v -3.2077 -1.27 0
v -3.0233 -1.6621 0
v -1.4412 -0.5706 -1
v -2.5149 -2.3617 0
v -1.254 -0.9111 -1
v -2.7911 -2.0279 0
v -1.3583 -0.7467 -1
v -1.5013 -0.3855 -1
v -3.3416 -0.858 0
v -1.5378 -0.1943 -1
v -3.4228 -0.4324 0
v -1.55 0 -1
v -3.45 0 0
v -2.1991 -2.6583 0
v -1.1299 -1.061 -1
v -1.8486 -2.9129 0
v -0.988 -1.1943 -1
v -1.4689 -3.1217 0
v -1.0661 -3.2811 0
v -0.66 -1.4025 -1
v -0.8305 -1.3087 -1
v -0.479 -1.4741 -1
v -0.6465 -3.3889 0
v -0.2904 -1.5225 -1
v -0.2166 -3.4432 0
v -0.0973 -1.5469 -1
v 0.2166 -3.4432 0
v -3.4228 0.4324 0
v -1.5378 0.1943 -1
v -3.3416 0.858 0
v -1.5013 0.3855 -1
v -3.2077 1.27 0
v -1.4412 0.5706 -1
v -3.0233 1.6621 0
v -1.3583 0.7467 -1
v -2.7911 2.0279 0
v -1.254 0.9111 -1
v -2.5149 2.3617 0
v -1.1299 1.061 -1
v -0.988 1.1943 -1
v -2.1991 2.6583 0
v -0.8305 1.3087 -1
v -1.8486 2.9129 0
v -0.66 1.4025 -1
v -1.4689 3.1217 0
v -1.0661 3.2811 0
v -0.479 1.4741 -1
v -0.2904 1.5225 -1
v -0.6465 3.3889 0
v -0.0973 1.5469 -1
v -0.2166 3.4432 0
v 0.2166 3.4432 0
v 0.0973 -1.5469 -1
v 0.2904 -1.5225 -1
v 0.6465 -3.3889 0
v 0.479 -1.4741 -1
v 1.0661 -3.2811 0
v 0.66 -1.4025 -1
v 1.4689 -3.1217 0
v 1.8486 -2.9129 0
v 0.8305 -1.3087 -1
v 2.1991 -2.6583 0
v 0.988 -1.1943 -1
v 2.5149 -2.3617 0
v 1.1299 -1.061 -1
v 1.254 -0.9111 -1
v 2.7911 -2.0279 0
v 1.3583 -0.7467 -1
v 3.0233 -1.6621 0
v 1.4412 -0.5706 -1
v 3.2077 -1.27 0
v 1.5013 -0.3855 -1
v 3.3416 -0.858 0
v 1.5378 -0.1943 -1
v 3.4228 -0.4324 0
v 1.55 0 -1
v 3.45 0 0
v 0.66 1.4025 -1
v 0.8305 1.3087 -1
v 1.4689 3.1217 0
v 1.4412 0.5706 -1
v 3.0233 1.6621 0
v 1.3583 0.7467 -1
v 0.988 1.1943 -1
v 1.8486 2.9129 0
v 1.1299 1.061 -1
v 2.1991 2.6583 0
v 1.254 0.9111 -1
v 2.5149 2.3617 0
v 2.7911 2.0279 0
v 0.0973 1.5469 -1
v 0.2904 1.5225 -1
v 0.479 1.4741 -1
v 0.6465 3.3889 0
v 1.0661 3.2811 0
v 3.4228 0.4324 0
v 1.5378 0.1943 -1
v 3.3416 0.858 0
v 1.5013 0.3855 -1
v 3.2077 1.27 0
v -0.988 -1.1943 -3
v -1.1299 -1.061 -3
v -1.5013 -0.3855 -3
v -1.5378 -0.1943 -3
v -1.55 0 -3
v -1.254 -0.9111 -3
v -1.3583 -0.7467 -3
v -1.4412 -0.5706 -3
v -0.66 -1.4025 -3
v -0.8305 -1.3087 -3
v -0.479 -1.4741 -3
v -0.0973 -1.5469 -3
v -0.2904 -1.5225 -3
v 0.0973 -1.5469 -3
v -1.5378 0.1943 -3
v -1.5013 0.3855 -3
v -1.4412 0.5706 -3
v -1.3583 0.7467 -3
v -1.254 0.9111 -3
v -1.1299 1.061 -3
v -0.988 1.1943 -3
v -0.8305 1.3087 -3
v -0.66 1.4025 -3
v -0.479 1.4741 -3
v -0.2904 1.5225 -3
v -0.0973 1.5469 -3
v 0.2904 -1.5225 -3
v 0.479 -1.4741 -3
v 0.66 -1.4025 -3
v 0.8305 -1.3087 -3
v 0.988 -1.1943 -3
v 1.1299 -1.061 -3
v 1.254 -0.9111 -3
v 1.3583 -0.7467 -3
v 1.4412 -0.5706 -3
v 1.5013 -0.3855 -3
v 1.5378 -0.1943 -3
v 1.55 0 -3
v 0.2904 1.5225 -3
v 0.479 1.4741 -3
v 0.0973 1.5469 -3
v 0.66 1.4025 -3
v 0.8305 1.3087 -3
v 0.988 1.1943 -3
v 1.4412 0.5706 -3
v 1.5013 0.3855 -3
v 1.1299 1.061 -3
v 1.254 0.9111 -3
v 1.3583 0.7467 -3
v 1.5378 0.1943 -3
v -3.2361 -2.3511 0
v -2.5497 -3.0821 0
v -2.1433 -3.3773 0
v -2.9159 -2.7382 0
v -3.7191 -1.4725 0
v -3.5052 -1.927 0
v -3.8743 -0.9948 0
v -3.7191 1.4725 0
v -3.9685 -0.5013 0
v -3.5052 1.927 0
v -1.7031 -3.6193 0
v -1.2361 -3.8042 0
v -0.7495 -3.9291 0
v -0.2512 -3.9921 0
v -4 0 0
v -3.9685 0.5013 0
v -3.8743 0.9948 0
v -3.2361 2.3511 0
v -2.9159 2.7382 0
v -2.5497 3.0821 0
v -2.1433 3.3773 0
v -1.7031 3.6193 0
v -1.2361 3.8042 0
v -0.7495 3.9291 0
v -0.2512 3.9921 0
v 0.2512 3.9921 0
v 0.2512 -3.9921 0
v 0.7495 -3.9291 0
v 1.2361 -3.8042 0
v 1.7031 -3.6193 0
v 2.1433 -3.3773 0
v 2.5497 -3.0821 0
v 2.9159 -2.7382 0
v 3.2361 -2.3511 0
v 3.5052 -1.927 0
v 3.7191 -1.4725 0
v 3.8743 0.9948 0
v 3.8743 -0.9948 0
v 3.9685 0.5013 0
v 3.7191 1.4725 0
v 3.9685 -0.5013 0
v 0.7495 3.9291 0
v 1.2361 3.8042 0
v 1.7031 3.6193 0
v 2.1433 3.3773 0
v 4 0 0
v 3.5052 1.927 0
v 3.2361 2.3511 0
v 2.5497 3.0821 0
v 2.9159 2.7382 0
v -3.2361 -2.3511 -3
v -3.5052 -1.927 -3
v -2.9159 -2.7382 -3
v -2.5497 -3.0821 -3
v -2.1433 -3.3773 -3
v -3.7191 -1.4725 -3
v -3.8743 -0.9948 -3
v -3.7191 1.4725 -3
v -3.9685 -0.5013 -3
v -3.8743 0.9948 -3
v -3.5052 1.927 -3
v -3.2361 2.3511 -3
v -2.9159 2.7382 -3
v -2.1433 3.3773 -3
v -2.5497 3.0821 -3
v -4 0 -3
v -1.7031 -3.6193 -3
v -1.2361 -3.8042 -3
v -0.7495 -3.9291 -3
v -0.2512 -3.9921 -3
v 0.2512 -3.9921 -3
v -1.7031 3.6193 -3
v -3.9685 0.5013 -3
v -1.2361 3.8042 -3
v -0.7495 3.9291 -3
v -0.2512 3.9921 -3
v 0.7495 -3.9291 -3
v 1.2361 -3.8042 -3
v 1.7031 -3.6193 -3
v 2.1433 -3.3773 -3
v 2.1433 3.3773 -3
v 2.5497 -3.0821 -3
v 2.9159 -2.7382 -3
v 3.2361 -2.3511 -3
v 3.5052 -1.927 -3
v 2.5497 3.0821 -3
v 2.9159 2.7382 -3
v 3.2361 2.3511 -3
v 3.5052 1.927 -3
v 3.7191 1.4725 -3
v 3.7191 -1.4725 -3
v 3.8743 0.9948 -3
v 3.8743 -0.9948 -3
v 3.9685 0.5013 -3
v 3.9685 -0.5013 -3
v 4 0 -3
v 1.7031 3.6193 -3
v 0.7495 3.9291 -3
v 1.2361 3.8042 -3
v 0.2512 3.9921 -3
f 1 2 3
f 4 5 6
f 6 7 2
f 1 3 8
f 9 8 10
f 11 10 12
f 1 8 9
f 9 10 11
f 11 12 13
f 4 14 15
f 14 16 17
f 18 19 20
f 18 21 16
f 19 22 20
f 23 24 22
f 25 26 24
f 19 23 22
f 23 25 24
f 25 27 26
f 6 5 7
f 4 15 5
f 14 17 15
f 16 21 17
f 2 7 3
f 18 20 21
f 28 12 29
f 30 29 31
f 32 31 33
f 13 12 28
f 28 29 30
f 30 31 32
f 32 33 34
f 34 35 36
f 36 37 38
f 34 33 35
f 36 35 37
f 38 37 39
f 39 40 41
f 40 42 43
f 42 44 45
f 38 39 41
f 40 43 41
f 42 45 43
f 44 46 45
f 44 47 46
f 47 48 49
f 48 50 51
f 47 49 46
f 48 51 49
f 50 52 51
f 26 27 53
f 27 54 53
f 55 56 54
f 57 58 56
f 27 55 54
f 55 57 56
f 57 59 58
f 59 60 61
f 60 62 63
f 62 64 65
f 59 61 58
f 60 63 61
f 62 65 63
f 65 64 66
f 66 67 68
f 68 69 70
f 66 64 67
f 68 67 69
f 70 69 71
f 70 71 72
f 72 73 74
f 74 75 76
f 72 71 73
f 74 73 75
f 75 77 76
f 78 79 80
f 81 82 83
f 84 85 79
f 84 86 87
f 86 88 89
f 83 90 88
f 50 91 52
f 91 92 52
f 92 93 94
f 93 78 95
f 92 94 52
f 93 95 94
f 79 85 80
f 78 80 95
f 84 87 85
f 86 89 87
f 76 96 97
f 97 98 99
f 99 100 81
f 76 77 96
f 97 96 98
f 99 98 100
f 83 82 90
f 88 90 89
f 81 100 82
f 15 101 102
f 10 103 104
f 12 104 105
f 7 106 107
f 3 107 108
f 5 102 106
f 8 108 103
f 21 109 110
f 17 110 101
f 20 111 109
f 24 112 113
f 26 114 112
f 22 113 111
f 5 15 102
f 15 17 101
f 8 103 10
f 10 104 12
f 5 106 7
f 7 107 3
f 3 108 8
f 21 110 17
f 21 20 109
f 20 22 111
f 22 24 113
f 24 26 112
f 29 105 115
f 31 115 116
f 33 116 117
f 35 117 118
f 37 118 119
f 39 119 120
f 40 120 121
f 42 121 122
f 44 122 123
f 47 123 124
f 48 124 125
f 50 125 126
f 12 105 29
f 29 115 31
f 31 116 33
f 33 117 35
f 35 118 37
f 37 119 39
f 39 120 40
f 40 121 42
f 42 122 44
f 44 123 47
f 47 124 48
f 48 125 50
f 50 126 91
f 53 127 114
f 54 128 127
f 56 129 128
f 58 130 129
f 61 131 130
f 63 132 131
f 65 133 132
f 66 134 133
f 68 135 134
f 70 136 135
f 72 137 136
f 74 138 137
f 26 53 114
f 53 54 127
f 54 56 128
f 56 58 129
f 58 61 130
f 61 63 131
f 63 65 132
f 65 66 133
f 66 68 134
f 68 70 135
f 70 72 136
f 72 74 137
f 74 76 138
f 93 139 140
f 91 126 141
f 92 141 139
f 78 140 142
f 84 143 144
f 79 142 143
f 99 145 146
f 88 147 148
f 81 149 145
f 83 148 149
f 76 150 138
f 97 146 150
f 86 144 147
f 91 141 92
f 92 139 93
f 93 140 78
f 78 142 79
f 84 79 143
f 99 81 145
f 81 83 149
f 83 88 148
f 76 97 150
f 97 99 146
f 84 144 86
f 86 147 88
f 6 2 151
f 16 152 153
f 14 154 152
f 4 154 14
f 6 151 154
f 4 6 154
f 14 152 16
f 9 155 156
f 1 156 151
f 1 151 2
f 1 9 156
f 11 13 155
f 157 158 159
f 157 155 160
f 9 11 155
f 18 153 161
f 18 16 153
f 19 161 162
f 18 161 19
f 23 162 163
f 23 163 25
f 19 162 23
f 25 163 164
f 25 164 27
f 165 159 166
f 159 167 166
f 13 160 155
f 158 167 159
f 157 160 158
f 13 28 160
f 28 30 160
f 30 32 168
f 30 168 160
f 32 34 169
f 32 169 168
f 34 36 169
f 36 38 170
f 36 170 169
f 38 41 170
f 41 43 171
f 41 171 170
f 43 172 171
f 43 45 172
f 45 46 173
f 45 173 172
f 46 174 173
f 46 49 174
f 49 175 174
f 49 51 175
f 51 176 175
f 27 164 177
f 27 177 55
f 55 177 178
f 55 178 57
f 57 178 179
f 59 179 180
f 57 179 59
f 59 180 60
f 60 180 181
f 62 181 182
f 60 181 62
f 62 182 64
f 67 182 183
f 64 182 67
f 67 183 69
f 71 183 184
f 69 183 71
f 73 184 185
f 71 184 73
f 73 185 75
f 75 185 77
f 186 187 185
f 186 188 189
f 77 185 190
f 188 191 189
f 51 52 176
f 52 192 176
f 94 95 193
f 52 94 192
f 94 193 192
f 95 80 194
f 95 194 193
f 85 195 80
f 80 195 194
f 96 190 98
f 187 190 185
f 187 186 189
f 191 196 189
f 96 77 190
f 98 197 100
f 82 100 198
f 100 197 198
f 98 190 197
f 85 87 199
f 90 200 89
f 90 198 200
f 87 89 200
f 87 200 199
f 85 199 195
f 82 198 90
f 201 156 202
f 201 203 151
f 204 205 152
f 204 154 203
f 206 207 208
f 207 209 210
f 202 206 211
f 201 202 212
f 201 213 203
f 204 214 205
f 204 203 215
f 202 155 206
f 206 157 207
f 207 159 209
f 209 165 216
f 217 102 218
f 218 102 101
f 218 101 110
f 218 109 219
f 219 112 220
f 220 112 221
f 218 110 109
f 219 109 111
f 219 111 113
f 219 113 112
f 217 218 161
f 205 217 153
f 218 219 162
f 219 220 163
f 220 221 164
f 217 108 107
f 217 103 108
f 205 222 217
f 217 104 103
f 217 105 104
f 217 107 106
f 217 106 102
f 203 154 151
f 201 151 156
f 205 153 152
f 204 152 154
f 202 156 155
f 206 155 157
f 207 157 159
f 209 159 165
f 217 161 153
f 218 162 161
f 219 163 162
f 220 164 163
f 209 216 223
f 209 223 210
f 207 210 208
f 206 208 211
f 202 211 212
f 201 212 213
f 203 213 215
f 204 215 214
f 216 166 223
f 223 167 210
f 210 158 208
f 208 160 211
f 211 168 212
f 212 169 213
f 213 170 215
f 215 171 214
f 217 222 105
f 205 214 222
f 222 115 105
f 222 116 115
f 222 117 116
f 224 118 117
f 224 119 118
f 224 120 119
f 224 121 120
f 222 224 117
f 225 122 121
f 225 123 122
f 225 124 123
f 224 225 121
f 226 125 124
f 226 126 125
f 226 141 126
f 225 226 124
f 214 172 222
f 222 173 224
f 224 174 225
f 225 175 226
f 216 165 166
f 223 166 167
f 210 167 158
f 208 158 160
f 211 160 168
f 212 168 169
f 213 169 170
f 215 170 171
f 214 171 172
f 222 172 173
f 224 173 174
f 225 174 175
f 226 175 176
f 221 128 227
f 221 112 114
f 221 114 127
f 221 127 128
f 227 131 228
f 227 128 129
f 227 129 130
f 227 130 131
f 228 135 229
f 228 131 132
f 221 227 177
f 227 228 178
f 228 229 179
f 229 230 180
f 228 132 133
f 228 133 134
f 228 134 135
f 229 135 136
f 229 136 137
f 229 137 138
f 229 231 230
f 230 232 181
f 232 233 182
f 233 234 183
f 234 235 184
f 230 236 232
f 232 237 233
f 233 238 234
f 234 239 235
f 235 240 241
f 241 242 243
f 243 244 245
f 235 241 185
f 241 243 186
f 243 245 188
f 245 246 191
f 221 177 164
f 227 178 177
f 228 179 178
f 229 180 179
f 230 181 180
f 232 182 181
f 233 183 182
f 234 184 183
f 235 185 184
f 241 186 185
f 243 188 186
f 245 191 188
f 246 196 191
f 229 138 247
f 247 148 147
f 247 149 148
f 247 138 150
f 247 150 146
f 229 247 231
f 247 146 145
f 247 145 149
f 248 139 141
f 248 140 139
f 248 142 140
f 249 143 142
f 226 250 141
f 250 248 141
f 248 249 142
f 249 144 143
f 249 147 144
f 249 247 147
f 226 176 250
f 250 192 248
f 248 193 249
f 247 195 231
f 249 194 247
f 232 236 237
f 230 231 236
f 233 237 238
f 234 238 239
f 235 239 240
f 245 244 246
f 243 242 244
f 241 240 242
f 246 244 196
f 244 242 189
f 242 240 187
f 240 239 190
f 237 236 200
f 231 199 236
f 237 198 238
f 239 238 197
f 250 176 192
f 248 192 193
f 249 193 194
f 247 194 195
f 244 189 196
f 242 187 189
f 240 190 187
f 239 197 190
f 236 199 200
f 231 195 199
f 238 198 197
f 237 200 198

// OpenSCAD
$fn = 50;

difference() {
	union() {
		translate(v = [0, 0, -3.0]) {
			cylinder(h = 3, r = 4.0);
		}
	}
	union() {
		translate(v = [0, 0, 0]) {
			rotate(a = [0, 0, 0]) {
				difference() {
					union() {
						translate(v = [0, 0, -6.0]) {
							cylinder(h = 6, r = 1.25);
						}
						translate(v = [0, 0, -1.0]) {
							cylinder(h = 1.0, r1 = 1.55, r2 = 3.45);
						}
						translate(v = [0, 0, -6.0]) {
							cylinder(h = 6, r = 1.55);
						}
						translate(v = [0, 0, -6.0]) {
							cylinder(h = 6, r = 1.25);
						}
					}
					union();
				}
			}
		}
	}
}
